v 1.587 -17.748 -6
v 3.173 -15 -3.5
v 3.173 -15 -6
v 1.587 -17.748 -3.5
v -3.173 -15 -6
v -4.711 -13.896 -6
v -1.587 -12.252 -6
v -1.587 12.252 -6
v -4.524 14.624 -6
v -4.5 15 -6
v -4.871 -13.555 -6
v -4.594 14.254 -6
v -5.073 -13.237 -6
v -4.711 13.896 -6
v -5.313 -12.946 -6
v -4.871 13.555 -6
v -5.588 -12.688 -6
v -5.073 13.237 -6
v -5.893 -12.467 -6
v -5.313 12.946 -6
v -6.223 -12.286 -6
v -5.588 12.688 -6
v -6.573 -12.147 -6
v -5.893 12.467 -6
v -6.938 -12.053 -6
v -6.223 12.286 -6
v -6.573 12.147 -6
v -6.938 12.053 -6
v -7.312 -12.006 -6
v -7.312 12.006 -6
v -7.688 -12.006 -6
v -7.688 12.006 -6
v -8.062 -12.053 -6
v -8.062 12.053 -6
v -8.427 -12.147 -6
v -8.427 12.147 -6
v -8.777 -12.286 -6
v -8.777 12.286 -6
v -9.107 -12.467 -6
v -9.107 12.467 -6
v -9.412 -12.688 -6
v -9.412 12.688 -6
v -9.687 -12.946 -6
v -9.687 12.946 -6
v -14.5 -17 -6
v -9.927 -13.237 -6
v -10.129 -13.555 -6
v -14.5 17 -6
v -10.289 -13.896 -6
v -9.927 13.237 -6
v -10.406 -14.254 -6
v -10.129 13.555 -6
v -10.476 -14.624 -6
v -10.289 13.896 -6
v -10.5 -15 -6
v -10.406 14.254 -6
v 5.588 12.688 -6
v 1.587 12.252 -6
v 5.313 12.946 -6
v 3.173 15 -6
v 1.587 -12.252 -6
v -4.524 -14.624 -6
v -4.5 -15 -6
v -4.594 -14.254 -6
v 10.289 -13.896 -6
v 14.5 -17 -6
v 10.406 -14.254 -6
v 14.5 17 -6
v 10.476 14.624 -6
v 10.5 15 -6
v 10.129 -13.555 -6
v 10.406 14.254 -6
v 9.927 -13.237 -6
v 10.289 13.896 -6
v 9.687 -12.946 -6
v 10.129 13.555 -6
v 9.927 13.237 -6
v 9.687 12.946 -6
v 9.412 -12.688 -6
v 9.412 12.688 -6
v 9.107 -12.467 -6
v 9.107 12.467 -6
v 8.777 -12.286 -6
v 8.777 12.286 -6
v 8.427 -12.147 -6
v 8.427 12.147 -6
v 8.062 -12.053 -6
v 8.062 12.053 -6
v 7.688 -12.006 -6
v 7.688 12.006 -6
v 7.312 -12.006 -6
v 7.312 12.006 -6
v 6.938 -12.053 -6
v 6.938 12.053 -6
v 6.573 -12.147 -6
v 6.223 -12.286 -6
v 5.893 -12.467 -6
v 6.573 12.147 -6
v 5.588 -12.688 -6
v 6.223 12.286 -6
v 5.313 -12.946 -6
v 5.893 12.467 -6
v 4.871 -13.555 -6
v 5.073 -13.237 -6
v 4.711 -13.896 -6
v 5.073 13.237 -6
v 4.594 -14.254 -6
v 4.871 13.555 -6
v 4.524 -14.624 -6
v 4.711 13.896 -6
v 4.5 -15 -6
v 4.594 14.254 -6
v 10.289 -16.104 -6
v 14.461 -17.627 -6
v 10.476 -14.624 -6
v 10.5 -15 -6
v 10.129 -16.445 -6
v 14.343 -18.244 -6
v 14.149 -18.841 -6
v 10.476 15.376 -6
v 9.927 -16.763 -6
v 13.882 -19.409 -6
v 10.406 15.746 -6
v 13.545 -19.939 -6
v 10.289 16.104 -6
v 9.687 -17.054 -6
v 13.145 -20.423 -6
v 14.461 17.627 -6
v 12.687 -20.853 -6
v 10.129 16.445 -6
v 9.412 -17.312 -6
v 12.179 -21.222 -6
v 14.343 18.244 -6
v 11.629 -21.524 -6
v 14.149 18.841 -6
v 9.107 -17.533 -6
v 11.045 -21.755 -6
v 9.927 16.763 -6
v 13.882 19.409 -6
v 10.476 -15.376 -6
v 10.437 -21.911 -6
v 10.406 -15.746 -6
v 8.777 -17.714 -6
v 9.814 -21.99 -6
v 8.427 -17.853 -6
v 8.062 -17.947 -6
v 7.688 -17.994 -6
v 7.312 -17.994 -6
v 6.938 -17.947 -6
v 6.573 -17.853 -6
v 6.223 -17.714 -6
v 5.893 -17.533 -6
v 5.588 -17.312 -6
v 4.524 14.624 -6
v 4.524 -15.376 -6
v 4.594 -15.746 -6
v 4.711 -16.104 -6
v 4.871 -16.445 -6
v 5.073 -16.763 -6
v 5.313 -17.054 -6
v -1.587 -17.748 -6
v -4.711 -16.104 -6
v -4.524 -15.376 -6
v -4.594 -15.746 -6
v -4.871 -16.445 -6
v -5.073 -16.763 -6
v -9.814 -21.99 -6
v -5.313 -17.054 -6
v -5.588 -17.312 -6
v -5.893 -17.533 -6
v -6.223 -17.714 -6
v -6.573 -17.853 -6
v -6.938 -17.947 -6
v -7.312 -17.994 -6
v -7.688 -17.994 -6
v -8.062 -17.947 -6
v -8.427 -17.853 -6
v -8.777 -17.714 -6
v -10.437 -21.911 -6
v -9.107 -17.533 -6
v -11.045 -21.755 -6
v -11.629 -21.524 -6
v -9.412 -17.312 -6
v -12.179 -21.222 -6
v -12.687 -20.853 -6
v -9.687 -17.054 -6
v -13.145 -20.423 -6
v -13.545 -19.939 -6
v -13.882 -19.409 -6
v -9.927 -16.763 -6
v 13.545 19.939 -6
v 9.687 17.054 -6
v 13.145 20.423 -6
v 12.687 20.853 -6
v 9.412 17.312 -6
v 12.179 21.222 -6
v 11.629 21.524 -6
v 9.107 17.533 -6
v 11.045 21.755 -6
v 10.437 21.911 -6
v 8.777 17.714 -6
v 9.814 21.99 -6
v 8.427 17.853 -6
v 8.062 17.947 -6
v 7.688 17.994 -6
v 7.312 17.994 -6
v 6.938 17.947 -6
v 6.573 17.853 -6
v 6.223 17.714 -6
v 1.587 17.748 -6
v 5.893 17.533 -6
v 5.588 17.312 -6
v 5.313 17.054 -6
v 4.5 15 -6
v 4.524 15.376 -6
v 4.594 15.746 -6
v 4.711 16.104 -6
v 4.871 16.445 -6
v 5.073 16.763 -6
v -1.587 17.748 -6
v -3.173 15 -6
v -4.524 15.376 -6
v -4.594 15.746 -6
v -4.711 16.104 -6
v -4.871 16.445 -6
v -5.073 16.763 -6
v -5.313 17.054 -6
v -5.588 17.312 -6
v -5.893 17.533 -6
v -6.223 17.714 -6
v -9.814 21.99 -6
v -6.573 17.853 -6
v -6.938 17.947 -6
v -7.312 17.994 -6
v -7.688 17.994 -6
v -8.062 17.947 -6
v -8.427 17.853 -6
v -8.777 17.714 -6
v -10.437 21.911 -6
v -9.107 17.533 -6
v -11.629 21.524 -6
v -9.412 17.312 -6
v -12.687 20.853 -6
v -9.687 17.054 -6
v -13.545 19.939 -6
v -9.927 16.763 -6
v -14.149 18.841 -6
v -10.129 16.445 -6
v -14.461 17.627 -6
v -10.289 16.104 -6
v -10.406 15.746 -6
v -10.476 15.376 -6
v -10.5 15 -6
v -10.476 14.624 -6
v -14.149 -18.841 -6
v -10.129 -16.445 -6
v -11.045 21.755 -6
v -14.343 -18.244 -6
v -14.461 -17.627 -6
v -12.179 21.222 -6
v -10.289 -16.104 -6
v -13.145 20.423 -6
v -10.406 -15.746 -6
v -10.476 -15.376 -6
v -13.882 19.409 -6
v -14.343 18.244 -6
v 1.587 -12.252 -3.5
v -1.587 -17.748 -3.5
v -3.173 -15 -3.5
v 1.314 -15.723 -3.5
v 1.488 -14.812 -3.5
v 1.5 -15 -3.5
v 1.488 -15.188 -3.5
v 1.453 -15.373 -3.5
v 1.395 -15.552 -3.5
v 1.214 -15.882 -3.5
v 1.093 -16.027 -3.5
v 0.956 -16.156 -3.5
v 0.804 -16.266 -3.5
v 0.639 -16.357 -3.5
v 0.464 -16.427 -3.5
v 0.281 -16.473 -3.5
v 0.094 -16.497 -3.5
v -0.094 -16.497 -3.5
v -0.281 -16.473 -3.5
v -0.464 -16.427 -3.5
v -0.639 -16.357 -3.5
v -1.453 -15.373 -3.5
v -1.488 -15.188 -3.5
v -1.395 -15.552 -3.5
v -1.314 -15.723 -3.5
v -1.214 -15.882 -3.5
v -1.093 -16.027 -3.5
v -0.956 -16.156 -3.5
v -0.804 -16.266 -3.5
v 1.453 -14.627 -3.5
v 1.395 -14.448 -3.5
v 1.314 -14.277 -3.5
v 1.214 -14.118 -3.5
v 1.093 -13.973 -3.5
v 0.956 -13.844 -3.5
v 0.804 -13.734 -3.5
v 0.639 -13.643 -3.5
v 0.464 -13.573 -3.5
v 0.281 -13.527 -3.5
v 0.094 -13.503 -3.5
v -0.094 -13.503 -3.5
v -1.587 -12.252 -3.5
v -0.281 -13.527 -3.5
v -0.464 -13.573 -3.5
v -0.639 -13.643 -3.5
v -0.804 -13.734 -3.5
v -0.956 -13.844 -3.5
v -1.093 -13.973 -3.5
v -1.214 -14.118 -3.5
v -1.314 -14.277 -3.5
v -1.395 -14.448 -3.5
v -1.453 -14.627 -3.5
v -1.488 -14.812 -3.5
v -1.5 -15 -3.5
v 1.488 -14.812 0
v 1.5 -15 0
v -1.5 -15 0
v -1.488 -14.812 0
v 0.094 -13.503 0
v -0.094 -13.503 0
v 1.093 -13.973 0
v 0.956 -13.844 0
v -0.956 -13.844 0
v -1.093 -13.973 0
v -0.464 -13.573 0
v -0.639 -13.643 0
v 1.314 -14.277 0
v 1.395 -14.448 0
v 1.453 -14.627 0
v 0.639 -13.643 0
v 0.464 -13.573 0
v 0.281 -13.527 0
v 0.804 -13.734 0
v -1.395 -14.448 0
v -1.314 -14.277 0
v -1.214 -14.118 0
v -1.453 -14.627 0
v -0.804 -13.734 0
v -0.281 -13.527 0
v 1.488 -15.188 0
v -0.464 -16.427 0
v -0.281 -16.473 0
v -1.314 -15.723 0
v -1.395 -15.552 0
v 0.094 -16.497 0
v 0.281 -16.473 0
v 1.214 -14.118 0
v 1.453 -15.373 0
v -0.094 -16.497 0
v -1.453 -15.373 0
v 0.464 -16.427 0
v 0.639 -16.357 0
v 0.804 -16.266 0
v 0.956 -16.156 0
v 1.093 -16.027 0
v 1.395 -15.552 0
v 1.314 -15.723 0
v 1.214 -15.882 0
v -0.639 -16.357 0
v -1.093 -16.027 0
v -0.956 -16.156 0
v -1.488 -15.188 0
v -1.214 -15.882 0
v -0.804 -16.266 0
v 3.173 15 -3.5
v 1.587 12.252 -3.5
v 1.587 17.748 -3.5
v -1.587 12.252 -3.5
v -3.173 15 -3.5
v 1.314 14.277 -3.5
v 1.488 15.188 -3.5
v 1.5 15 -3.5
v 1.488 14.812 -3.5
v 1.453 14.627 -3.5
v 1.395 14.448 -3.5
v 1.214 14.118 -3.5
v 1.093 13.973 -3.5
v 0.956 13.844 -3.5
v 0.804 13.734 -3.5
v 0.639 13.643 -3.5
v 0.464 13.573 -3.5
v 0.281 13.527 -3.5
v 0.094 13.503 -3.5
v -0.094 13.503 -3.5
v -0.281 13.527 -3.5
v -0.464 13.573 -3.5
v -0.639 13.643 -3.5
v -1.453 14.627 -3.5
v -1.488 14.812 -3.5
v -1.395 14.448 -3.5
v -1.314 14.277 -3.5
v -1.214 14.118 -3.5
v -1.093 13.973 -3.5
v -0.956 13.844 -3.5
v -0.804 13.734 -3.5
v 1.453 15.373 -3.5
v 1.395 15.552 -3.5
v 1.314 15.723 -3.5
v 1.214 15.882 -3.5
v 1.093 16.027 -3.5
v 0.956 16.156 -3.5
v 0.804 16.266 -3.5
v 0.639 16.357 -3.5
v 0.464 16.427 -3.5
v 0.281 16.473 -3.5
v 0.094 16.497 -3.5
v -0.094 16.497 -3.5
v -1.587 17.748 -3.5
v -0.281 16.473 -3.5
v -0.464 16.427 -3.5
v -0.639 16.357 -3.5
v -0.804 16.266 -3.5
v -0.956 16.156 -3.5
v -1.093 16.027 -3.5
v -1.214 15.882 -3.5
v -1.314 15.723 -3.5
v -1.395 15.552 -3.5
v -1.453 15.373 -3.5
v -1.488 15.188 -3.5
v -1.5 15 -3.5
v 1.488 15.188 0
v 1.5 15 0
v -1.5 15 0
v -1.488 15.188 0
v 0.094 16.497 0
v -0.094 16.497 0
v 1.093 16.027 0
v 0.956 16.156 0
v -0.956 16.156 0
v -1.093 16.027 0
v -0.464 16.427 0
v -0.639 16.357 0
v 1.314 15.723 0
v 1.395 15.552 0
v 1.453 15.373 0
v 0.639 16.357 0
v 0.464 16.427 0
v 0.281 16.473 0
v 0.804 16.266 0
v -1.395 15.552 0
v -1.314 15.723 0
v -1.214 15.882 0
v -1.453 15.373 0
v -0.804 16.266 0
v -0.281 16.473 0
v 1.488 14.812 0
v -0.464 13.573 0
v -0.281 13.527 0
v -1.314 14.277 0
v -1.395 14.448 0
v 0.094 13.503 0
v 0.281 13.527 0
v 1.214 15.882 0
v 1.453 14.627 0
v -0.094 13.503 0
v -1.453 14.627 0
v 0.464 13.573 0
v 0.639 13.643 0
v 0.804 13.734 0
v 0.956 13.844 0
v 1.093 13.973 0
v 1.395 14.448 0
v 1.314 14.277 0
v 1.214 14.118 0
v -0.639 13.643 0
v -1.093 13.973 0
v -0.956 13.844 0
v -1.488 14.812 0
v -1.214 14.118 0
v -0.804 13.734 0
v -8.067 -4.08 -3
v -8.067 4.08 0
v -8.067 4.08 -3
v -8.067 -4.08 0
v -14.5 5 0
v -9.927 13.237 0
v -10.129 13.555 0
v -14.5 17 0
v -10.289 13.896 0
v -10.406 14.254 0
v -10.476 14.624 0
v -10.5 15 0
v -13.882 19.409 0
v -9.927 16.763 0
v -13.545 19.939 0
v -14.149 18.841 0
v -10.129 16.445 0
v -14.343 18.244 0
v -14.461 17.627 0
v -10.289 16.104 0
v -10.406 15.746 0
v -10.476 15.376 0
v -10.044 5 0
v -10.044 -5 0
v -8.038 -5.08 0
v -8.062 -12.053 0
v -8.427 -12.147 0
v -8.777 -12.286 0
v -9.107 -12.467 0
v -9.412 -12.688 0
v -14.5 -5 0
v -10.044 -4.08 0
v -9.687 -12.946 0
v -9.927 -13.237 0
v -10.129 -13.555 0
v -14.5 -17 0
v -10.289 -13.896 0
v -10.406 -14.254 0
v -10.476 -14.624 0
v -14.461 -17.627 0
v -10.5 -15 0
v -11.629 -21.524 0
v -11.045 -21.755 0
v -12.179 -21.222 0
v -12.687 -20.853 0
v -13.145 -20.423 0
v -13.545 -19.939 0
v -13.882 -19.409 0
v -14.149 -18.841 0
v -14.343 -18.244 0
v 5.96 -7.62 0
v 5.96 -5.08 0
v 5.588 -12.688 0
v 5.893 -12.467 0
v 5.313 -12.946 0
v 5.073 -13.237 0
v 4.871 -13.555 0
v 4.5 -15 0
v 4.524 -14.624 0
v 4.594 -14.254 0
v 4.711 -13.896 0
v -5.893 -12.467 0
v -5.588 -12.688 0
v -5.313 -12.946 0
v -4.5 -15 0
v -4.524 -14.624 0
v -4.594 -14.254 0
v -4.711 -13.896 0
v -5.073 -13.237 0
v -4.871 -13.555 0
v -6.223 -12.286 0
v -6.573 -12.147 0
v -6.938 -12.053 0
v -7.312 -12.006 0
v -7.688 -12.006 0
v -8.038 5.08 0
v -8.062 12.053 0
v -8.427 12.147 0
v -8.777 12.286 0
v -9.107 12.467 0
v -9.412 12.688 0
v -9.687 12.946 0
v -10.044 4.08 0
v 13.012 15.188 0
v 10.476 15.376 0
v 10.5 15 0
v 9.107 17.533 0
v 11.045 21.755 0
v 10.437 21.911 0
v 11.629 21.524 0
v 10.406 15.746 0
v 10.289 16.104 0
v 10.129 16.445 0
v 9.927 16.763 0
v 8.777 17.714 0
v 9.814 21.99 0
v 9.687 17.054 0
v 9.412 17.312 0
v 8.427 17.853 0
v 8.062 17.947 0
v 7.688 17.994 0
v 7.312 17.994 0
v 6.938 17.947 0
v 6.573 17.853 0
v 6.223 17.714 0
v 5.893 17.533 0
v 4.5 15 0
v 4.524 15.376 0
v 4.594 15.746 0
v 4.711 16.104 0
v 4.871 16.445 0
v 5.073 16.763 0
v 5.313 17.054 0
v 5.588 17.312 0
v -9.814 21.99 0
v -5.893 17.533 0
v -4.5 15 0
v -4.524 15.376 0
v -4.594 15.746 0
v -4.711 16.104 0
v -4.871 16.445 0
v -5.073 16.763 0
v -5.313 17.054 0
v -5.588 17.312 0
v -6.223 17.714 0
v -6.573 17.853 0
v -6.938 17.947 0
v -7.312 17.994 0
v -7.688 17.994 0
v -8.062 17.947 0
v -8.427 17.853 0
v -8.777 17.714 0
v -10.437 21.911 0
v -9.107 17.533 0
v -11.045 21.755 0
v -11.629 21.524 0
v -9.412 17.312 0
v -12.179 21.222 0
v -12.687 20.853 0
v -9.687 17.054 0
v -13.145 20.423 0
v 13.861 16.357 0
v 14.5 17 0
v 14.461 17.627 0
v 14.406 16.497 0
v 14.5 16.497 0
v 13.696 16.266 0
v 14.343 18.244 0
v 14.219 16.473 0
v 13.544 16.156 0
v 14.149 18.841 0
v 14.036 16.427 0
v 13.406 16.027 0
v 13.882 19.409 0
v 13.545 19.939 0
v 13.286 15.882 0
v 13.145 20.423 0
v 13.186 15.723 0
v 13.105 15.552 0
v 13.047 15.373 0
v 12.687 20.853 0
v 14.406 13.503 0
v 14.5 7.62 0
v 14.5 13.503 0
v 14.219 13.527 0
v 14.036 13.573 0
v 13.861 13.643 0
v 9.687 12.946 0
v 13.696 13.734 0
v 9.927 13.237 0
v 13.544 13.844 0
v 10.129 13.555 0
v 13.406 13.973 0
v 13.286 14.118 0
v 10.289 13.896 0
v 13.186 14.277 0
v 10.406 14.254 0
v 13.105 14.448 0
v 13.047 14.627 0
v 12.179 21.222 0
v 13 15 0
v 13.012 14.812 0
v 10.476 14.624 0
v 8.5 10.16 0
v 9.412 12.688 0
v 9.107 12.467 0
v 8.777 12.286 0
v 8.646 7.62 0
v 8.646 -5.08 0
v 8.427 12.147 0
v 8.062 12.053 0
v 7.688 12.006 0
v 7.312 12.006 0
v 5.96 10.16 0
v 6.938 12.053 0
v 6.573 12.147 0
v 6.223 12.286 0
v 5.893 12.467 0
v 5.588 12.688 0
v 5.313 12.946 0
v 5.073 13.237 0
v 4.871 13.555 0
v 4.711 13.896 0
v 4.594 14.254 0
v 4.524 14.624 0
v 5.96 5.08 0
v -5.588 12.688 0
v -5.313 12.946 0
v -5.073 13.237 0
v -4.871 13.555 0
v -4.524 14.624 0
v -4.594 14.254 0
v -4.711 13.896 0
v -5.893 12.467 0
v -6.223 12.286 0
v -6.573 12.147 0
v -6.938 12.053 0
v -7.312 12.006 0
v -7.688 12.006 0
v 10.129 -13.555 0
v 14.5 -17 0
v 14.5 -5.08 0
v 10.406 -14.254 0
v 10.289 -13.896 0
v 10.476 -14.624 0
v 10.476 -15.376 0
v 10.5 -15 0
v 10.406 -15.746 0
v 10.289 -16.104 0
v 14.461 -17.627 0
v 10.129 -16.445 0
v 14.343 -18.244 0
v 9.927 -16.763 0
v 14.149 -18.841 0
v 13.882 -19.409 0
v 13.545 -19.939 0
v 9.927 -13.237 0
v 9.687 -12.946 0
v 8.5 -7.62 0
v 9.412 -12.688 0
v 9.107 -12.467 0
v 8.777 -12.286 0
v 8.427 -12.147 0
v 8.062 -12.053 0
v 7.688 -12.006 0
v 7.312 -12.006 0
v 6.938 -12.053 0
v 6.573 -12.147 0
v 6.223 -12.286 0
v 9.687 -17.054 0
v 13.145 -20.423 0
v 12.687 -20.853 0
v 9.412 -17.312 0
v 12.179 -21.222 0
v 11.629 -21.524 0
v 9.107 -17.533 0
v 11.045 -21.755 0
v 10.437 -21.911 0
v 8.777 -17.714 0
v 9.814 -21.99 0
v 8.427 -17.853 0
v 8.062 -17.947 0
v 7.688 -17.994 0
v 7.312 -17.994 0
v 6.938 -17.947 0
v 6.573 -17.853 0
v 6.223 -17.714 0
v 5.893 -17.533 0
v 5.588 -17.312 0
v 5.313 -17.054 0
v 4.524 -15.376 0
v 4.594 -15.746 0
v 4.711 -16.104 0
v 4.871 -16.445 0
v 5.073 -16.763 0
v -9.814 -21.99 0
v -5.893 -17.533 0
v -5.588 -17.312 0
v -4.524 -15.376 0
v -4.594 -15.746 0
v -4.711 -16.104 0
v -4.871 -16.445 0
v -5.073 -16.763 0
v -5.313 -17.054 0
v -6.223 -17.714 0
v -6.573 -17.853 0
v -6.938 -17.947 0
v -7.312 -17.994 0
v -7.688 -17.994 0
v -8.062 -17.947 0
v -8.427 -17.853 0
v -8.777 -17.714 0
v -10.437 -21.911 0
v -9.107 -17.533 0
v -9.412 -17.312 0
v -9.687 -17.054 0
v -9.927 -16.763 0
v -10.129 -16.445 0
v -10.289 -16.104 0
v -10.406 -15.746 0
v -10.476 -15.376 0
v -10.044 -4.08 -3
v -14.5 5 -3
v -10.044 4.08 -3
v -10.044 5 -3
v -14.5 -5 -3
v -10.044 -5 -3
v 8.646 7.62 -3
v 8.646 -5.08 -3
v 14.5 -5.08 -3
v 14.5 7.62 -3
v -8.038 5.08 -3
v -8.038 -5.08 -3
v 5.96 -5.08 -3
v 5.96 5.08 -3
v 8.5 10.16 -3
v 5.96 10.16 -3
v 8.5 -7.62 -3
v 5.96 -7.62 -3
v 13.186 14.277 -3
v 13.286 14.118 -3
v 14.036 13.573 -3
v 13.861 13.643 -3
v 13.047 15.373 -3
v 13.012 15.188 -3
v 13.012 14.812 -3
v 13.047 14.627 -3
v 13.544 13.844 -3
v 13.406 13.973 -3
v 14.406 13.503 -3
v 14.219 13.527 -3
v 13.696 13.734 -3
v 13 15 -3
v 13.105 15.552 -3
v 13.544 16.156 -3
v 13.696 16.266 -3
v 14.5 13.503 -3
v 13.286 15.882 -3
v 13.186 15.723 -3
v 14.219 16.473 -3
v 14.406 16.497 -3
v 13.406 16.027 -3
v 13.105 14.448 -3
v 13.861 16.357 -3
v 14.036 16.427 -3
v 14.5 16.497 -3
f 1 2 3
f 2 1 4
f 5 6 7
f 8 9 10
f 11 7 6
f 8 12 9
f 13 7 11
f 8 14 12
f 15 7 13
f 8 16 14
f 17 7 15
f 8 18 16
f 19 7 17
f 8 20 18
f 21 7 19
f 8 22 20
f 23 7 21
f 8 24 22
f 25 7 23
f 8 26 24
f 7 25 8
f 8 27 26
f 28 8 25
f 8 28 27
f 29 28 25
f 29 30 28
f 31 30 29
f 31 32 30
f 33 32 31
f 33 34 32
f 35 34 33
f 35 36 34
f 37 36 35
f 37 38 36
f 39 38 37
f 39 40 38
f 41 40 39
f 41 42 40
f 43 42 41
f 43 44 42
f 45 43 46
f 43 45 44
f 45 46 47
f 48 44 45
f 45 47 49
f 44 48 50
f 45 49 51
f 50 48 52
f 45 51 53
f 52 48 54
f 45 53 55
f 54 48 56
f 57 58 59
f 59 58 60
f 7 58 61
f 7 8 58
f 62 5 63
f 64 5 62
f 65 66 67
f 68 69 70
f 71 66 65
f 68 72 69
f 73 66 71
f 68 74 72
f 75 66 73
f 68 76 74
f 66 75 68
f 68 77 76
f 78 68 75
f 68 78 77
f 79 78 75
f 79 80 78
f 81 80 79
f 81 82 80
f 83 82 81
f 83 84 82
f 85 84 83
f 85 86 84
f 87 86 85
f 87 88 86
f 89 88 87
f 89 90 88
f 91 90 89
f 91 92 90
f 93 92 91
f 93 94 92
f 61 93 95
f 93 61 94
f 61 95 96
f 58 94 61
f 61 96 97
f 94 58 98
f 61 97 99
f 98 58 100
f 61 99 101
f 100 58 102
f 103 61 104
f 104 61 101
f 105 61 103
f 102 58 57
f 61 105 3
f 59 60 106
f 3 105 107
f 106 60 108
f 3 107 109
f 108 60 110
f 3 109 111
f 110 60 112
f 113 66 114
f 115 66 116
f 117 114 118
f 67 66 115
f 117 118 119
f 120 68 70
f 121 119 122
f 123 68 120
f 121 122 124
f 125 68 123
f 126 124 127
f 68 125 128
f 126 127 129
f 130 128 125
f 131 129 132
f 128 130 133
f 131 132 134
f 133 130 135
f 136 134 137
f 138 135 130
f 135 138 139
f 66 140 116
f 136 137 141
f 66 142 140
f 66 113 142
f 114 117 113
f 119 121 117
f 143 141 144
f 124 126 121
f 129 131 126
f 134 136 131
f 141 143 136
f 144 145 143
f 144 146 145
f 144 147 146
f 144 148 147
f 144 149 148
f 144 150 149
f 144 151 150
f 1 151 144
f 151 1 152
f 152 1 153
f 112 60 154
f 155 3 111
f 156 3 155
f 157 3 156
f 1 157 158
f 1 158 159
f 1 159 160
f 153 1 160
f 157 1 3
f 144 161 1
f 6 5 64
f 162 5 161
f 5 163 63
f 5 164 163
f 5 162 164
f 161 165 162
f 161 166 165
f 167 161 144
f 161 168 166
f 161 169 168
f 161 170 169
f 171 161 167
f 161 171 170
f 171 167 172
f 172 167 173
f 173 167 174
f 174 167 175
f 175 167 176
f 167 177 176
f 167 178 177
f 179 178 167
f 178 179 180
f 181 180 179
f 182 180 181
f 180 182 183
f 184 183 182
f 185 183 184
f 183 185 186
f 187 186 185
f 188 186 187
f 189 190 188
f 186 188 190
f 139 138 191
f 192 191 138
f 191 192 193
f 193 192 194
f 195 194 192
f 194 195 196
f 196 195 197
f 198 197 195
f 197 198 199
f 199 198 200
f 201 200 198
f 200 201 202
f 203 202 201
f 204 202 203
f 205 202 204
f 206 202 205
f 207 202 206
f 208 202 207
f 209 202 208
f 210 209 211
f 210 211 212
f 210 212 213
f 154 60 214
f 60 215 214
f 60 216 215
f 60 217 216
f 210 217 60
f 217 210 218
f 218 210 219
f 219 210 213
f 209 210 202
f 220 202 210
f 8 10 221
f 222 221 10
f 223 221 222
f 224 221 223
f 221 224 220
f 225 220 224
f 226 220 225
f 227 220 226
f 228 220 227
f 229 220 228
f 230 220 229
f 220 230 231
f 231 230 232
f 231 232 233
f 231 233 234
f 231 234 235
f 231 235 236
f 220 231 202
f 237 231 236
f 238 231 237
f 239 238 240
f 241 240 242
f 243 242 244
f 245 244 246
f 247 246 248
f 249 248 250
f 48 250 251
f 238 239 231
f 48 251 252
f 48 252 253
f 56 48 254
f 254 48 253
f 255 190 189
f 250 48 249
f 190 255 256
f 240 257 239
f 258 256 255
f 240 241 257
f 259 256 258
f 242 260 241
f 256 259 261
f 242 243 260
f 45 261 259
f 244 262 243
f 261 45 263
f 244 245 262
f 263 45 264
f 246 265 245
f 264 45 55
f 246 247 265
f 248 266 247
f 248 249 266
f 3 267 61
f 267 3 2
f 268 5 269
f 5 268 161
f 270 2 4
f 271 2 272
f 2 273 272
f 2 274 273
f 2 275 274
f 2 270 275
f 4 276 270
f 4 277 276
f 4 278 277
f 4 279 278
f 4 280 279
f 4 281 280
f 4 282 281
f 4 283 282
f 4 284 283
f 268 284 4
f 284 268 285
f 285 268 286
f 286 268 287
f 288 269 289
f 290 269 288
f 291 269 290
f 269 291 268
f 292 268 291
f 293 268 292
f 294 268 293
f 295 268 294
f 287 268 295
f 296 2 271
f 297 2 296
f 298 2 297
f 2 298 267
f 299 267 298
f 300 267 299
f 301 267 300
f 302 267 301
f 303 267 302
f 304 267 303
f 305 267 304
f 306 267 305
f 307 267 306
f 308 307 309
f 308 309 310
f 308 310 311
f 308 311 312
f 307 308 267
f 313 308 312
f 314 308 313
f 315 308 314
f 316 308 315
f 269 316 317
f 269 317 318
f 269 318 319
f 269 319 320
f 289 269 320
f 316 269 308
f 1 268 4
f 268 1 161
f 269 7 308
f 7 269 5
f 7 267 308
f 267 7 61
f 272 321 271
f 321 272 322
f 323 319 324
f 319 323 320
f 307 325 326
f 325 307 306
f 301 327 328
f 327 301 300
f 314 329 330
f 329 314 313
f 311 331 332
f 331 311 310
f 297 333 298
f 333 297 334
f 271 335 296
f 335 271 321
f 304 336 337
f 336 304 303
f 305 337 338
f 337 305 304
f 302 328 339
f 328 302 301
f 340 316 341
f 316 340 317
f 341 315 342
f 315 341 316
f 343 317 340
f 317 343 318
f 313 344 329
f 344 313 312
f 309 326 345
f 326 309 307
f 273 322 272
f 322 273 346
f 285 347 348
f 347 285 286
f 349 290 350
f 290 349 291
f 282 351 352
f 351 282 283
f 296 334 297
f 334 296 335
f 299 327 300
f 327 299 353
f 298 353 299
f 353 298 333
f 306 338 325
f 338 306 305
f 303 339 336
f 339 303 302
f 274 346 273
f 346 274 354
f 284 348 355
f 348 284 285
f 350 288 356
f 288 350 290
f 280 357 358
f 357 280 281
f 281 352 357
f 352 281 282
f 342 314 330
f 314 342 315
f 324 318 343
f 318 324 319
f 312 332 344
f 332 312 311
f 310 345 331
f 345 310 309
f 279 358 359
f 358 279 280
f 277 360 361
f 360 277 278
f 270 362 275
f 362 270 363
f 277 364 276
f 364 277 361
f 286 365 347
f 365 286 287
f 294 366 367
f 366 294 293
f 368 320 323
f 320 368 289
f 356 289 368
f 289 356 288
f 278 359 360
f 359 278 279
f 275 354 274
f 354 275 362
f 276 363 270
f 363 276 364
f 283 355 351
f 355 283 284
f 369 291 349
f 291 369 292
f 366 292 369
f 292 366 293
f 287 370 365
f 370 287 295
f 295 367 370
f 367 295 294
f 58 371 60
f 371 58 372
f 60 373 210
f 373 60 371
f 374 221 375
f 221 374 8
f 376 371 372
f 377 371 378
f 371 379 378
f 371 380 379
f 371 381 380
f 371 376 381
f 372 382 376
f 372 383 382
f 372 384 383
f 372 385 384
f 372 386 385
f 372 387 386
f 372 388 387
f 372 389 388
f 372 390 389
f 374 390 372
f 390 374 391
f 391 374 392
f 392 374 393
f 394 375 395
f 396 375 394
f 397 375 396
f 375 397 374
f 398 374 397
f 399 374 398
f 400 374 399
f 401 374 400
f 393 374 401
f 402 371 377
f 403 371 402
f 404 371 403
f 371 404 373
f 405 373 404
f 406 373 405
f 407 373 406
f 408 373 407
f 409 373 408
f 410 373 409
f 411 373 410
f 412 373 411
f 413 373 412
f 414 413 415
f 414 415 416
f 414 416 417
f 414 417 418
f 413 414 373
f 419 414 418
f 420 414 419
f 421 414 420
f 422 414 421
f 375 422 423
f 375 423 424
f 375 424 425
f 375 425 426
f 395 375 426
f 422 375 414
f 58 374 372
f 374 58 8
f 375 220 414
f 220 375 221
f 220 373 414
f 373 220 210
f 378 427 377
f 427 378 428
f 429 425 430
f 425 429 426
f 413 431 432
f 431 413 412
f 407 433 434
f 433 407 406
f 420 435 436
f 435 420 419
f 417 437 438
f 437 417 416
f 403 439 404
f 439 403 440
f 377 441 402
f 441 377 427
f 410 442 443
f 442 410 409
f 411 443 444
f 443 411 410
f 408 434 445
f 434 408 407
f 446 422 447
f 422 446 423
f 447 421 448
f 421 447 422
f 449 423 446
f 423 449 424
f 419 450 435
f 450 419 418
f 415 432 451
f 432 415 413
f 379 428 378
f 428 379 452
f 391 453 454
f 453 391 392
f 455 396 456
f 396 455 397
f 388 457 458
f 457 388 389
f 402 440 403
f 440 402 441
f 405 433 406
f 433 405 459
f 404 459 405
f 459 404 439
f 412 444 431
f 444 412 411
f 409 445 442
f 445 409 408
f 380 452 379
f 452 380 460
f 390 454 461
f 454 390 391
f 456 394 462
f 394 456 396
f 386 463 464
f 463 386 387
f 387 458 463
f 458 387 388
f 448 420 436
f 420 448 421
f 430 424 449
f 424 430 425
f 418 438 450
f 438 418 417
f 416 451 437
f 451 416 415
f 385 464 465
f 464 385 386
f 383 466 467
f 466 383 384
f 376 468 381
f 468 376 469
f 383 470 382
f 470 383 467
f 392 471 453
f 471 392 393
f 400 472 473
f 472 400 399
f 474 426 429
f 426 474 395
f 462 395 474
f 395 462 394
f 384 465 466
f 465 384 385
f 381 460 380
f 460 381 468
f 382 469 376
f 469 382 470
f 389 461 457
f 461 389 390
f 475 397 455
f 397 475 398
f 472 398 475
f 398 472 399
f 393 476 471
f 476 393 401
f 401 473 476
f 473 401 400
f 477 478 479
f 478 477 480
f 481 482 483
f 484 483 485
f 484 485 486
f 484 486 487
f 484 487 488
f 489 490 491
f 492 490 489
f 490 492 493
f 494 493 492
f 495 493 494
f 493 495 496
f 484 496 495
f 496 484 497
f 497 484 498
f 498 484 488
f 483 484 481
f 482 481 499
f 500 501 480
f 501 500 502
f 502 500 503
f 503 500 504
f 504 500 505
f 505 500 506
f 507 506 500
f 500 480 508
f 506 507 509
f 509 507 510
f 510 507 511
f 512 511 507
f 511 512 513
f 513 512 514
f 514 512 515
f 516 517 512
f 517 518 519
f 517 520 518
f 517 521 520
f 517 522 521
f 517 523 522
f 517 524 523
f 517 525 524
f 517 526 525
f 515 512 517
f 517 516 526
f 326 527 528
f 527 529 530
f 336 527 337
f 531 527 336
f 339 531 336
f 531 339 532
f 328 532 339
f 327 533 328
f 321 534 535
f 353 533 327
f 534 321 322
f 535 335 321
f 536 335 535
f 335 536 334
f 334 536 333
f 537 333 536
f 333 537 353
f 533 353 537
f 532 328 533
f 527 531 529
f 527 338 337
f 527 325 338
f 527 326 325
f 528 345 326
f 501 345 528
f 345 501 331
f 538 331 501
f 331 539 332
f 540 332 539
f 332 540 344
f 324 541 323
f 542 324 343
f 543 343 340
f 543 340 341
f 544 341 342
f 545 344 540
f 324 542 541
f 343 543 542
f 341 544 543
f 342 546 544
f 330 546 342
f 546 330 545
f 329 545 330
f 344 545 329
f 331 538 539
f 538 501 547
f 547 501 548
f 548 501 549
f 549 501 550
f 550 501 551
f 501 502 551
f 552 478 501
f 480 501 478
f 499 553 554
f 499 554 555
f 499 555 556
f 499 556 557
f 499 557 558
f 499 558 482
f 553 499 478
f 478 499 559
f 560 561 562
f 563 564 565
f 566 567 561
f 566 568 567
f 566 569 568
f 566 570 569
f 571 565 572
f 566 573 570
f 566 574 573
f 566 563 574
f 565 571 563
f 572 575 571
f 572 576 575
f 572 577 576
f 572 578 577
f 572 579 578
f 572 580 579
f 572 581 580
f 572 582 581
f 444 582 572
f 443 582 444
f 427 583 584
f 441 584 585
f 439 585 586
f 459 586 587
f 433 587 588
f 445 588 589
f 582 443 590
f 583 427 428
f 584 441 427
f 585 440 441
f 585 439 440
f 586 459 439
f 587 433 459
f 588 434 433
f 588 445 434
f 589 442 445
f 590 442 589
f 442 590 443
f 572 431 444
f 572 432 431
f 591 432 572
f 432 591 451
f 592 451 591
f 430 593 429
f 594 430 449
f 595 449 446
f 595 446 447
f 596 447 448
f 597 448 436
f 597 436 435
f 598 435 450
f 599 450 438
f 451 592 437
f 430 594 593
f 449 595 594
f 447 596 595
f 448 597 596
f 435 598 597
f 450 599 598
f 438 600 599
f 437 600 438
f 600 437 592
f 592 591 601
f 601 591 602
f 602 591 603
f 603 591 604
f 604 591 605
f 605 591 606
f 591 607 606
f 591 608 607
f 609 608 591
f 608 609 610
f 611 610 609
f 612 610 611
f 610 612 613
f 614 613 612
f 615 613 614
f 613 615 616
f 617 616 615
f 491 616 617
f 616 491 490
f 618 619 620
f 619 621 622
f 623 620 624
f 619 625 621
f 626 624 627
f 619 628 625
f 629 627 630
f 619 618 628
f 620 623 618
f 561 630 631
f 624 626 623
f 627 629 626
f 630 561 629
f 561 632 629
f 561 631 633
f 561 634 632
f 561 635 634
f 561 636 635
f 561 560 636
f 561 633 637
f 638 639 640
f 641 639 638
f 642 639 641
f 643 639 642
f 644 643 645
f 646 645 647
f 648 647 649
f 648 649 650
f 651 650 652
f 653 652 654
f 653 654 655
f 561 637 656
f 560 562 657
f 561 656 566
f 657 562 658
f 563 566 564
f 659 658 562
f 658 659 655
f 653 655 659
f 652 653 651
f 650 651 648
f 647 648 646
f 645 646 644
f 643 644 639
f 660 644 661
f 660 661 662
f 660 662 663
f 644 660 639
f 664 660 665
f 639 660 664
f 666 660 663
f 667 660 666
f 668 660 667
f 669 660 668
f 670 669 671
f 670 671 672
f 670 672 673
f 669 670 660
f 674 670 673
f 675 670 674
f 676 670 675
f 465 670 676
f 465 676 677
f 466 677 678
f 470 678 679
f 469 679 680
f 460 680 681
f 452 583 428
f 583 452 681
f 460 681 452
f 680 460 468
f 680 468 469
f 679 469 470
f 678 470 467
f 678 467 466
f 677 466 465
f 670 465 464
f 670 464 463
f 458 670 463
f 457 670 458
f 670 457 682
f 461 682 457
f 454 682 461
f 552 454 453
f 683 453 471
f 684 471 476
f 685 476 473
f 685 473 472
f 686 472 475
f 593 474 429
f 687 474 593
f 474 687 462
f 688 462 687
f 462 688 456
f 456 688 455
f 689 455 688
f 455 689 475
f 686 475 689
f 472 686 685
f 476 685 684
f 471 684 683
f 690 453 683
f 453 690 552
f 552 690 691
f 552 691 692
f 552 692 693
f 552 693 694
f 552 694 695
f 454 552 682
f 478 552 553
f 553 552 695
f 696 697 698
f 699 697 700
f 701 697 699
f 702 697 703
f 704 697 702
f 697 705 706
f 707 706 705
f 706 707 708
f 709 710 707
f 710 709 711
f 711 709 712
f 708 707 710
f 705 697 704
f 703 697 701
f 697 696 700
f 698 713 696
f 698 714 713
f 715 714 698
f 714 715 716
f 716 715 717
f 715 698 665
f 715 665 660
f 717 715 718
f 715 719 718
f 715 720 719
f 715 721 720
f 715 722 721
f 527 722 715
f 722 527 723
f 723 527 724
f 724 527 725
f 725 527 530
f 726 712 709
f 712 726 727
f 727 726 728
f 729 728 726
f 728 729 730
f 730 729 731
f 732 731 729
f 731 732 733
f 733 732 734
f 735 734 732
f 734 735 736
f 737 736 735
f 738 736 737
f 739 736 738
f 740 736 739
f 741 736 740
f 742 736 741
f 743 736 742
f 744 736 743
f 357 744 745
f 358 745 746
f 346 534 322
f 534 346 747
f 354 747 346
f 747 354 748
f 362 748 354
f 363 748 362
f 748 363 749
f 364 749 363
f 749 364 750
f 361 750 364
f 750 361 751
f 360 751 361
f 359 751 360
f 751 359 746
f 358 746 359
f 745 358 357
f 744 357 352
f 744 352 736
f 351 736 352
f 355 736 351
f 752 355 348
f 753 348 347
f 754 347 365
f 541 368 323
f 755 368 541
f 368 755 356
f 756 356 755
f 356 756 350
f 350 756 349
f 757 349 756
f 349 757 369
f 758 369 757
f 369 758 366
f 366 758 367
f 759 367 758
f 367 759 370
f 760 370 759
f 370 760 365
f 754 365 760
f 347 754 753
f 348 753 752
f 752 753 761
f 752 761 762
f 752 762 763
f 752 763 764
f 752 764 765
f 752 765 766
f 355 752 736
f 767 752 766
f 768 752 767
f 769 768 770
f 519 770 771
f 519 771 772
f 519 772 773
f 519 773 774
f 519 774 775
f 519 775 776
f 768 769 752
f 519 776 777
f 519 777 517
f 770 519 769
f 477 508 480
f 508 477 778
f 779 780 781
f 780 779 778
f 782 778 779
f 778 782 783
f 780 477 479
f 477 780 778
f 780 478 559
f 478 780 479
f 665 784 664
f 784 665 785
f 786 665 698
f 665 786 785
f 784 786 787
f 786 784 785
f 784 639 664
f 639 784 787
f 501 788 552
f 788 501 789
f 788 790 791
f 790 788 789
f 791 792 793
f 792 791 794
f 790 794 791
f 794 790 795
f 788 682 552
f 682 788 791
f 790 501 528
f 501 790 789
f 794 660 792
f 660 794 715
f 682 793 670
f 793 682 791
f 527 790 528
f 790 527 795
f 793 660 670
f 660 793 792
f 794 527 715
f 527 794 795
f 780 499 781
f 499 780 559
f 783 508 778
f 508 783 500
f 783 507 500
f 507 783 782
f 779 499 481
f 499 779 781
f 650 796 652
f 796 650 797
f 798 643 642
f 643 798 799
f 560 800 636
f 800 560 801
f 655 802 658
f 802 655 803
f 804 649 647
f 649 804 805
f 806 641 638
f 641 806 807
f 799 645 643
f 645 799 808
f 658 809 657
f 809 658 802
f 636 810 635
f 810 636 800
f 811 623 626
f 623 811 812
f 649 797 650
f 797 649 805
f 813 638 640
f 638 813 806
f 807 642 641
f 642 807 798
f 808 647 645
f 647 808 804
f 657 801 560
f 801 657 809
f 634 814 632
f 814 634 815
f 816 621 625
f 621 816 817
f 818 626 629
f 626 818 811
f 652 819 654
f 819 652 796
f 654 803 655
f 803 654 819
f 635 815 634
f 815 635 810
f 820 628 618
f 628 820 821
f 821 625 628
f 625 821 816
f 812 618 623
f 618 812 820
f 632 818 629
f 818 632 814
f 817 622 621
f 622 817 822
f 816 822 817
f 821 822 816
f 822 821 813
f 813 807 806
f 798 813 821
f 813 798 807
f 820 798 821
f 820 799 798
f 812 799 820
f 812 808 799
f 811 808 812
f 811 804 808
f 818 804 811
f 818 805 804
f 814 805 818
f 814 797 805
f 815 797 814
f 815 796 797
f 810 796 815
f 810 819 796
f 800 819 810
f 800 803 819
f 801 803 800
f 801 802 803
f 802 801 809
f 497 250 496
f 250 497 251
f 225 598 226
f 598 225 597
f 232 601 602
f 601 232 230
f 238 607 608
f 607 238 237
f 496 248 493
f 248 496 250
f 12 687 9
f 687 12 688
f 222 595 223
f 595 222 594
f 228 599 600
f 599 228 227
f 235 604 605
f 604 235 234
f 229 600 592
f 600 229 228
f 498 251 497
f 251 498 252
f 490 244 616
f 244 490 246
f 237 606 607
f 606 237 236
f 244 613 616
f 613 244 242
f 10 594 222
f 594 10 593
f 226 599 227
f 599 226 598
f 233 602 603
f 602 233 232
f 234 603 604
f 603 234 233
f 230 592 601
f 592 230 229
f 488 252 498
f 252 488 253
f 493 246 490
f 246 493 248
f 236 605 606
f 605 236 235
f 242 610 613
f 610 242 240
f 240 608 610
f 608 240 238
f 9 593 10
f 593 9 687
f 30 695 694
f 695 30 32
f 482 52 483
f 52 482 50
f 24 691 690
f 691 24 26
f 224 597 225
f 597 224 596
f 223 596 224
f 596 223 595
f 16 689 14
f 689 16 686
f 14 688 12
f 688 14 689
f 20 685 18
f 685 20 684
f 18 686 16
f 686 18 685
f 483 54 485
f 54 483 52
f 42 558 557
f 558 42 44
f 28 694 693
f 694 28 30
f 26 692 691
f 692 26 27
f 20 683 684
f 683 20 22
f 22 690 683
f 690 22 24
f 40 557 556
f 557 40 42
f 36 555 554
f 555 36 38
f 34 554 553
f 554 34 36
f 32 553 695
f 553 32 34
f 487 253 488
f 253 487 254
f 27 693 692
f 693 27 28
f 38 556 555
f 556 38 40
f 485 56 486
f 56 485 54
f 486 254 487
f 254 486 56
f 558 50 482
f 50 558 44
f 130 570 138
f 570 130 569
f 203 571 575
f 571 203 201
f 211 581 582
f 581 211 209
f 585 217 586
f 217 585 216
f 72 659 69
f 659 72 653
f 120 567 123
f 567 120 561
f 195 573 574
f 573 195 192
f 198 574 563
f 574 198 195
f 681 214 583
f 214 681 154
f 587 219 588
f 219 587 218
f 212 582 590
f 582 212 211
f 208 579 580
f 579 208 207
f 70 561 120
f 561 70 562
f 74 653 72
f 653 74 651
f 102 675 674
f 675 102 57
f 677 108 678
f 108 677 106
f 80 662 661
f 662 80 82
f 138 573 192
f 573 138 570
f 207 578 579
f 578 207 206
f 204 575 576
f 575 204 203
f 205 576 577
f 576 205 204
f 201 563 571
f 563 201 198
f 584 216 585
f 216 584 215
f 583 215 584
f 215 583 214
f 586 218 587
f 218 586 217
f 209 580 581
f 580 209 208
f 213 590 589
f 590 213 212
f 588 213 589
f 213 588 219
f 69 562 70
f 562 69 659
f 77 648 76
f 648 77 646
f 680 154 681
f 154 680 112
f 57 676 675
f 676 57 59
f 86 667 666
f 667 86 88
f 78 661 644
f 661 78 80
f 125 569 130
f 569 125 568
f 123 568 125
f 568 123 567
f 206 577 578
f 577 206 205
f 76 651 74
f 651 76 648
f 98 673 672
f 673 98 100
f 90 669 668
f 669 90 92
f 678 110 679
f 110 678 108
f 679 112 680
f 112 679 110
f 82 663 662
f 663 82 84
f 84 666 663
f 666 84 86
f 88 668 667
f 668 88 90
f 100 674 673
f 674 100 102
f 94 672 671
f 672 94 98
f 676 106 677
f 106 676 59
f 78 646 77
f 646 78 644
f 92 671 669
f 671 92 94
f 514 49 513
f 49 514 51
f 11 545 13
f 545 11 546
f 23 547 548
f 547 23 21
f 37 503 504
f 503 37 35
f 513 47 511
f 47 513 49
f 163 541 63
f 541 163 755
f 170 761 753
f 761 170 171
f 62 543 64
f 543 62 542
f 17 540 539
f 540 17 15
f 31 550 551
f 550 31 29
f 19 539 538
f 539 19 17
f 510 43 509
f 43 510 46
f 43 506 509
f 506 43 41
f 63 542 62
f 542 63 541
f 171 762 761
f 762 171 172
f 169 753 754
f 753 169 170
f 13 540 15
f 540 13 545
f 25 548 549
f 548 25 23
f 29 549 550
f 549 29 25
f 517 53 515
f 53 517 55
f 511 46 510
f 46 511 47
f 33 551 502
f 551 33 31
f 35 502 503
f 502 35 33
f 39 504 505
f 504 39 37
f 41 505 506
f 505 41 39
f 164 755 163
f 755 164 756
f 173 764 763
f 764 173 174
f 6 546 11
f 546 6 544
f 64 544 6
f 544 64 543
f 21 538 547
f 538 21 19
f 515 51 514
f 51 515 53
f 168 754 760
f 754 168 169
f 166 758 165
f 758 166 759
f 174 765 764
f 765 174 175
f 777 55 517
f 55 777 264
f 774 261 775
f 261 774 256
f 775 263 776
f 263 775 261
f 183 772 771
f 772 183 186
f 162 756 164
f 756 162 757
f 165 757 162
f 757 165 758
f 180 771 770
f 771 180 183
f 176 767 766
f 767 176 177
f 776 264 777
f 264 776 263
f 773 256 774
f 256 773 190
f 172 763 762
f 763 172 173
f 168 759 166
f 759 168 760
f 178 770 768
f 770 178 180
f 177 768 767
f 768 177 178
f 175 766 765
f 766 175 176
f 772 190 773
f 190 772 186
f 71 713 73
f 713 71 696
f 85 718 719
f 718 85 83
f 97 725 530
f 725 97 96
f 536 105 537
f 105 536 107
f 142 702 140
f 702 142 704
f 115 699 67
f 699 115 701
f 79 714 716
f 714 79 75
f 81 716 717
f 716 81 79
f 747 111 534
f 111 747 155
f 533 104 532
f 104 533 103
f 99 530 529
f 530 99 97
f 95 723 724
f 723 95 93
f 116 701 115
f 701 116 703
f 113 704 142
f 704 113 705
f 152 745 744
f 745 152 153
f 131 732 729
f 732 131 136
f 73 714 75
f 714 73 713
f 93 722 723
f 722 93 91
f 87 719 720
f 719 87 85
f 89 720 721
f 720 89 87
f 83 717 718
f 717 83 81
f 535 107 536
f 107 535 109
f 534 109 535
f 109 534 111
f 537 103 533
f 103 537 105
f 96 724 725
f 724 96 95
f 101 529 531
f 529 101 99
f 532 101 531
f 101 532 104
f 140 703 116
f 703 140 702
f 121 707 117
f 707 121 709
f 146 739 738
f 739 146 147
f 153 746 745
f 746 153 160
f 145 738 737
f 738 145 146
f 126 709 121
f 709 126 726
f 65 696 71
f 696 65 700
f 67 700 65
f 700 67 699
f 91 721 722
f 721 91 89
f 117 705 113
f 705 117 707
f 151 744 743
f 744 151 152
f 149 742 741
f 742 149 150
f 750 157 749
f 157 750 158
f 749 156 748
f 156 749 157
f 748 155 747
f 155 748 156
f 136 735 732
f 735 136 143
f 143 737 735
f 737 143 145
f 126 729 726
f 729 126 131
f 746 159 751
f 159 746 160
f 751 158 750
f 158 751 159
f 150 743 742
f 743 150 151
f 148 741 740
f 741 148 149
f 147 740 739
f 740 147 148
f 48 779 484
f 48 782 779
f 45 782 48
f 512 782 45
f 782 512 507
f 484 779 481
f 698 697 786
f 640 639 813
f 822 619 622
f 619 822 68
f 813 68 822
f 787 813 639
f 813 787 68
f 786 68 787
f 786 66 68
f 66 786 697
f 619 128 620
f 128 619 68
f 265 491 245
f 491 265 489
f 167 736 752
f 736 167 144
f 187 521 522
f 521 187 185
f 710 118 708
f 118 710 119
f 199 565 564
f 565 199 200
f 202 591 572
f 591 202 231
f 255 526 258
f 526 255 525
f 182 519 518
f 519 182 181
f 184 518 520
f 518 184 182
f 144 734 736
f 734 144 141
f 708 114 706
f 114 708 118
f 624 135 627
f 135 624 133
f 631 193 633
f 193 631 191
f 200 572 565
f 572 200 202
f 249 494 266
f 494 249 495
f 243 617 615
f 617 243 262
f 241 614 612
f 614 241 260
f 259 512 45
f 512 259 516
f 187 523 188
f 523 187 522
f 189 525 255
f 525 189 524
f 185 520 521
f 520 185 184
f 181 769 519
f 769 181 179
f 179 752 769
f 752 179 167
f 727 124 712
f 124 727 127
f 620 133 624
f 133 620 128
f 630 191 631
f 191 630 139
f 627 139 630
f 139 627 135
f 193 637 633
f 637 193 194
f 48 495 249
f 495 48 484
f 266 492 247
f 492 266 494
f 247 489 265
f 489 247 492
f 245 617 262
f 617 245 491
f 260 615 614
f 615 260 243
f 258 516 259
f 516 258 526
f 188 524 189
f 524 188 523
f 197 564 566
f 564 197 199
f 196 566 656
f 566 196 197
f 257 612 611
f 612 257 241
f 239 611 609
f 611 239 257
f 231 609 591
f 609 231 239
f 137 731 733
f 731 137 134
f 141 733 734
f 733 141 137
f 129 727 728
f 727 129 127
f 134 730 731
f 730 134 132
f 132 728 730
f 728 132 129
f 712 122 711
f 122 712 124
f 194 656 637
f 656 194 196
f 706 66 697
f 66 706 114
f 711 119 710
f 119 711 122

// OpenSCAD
$fn = 50;


difference() {
	union() {
		translate(v = [0, 0, -6]) {
			hull() {
				translate(v = [-9.5000000000, 17.0000000000, 0]) {
					cylinder(h = 6, r = 5);
				}
				translate(v = [9.5000000000, 17.0000000000, 0]) {
					cylinder(h = 6, r = 5);
				}
				translate(v = [-9.5000000000, -17.0000000000, 0]) {
					cylinder(h = 6, r = 5);
				}
				translate(v = [9.5000000000, -17.0000000000, 0]) {
					cylinder(h = 6, r = 5);
				}
			}
		}
	}
	union() {
		translate(v = [0, -15, -6]) {
			rotate(a = [0, 0, 0]) {
				difference() {
					union() {
						linear_extrude(height = 2.5000000000) {
							polygon(points = [[3.1735000000, 0.0000000000], [1.5867500000, 2.7483316189], [-1.5867500000, 2.7483316189], [-3.1735000000, 0.0000000000], [-1.5867500000, -2.7483316189], [1.5867500000, -2.7483316189]]);
						}
						translate(v = [0, 0, -50.0000000000]) {
							cylinder(h = 100, r = 1.5000000000);
						}
						translate(v = [0, 0, -50.0000000000]) {
							cylinder(h = 100, r = 1.5000000000);
						}
						translate(v = [0, 0, -50.0000000000]) {
							cylinder(h = 100, r = 1.5000000000);
						}
					}
					union();
				}
			}
		}
		translate(v = [0, 15, -6]) {
			rotate(a = [0, 0, 0]) {
				difference() {
					union() {
						linear_extrude(height = 2.5000000000) {
							polygon(points = [[3.1735000000, 0.0000000000], [1.5867500000, 2.7483316189], [-1.5867500000, 2.7483316189], [-3.1735000000, 0.0000000000], [-1.5867500000, -2.7483316189], [1.5867500000, -2.7483316189]]);
						}
						translate(v = [0, 0, -50.0000000000]) {
							cylinder(h = 100, r = 1.5000000000);
						}
						translate(v = [0, 0, -50.0000000000]) {
							cylinder(h = 100, r = 1.5000000000);
						}
						translate(v = [0, 0, -50.0000000000]) {
							cylinder(h = 100, r = 1.5000000000);
						}
					}
					union();
				}
			}
		}
		translate(v = [15.0000000000, 0, -3]) {
			rotate(a = [0, 0, 180]) {
				difference() {
					union() {
						#translate(v = [23.0670000000, -4.0800000000, 0]) {
							cube(size = [5, 8.1600000000, 3]);
						}
						#translate(v = [0.3540000000, -7.6200000000, 0]) {
							cube(size = [6, 12.7000000000, 3]);
						}
						#translate(v = [9.0380000000, -5.0800000000, 0]) {
							cube(size = [14, 10.1600000000, 3]);
						}
						#translate(v = [6.5000000000, -10.1600000000, 0]) {
							cube(size = [2.5400000000, 17.7800000000, 3]);
						}
						#translate(v = [25.0440000000, -5.0000000000, 0]) {
							cube(size = [7, 10, 3]);
						}
						#translate(v = [0.5000000000, -15, 0.0000000000]) {
							cylinder(h = 3, r = 1.5000000000);
						}
					}
					union();
				}
			}
		}
		translate(v = [-7.5000000000, 15.0000000000, -50.0000000000]) {
			cylinder(h = 100, r = 3.0000000000);
		}
		translate(v = [7.5000000000, 15.0000000000, -50.0000000000]) {
			cylinder(h = 100, r = 3.0000000000);
		}
		translate(v = [-7.5000000000, -15.0000000000, -50.0000000000]) {
			cylinder(h = 100, r = 3.0000000000);
		}
		translate(v = [7.5000000000, -15.0000000000, -50.0000000000]) {
			cylinder(h = 100, r = 3.0000000000);
		}
	}
}
